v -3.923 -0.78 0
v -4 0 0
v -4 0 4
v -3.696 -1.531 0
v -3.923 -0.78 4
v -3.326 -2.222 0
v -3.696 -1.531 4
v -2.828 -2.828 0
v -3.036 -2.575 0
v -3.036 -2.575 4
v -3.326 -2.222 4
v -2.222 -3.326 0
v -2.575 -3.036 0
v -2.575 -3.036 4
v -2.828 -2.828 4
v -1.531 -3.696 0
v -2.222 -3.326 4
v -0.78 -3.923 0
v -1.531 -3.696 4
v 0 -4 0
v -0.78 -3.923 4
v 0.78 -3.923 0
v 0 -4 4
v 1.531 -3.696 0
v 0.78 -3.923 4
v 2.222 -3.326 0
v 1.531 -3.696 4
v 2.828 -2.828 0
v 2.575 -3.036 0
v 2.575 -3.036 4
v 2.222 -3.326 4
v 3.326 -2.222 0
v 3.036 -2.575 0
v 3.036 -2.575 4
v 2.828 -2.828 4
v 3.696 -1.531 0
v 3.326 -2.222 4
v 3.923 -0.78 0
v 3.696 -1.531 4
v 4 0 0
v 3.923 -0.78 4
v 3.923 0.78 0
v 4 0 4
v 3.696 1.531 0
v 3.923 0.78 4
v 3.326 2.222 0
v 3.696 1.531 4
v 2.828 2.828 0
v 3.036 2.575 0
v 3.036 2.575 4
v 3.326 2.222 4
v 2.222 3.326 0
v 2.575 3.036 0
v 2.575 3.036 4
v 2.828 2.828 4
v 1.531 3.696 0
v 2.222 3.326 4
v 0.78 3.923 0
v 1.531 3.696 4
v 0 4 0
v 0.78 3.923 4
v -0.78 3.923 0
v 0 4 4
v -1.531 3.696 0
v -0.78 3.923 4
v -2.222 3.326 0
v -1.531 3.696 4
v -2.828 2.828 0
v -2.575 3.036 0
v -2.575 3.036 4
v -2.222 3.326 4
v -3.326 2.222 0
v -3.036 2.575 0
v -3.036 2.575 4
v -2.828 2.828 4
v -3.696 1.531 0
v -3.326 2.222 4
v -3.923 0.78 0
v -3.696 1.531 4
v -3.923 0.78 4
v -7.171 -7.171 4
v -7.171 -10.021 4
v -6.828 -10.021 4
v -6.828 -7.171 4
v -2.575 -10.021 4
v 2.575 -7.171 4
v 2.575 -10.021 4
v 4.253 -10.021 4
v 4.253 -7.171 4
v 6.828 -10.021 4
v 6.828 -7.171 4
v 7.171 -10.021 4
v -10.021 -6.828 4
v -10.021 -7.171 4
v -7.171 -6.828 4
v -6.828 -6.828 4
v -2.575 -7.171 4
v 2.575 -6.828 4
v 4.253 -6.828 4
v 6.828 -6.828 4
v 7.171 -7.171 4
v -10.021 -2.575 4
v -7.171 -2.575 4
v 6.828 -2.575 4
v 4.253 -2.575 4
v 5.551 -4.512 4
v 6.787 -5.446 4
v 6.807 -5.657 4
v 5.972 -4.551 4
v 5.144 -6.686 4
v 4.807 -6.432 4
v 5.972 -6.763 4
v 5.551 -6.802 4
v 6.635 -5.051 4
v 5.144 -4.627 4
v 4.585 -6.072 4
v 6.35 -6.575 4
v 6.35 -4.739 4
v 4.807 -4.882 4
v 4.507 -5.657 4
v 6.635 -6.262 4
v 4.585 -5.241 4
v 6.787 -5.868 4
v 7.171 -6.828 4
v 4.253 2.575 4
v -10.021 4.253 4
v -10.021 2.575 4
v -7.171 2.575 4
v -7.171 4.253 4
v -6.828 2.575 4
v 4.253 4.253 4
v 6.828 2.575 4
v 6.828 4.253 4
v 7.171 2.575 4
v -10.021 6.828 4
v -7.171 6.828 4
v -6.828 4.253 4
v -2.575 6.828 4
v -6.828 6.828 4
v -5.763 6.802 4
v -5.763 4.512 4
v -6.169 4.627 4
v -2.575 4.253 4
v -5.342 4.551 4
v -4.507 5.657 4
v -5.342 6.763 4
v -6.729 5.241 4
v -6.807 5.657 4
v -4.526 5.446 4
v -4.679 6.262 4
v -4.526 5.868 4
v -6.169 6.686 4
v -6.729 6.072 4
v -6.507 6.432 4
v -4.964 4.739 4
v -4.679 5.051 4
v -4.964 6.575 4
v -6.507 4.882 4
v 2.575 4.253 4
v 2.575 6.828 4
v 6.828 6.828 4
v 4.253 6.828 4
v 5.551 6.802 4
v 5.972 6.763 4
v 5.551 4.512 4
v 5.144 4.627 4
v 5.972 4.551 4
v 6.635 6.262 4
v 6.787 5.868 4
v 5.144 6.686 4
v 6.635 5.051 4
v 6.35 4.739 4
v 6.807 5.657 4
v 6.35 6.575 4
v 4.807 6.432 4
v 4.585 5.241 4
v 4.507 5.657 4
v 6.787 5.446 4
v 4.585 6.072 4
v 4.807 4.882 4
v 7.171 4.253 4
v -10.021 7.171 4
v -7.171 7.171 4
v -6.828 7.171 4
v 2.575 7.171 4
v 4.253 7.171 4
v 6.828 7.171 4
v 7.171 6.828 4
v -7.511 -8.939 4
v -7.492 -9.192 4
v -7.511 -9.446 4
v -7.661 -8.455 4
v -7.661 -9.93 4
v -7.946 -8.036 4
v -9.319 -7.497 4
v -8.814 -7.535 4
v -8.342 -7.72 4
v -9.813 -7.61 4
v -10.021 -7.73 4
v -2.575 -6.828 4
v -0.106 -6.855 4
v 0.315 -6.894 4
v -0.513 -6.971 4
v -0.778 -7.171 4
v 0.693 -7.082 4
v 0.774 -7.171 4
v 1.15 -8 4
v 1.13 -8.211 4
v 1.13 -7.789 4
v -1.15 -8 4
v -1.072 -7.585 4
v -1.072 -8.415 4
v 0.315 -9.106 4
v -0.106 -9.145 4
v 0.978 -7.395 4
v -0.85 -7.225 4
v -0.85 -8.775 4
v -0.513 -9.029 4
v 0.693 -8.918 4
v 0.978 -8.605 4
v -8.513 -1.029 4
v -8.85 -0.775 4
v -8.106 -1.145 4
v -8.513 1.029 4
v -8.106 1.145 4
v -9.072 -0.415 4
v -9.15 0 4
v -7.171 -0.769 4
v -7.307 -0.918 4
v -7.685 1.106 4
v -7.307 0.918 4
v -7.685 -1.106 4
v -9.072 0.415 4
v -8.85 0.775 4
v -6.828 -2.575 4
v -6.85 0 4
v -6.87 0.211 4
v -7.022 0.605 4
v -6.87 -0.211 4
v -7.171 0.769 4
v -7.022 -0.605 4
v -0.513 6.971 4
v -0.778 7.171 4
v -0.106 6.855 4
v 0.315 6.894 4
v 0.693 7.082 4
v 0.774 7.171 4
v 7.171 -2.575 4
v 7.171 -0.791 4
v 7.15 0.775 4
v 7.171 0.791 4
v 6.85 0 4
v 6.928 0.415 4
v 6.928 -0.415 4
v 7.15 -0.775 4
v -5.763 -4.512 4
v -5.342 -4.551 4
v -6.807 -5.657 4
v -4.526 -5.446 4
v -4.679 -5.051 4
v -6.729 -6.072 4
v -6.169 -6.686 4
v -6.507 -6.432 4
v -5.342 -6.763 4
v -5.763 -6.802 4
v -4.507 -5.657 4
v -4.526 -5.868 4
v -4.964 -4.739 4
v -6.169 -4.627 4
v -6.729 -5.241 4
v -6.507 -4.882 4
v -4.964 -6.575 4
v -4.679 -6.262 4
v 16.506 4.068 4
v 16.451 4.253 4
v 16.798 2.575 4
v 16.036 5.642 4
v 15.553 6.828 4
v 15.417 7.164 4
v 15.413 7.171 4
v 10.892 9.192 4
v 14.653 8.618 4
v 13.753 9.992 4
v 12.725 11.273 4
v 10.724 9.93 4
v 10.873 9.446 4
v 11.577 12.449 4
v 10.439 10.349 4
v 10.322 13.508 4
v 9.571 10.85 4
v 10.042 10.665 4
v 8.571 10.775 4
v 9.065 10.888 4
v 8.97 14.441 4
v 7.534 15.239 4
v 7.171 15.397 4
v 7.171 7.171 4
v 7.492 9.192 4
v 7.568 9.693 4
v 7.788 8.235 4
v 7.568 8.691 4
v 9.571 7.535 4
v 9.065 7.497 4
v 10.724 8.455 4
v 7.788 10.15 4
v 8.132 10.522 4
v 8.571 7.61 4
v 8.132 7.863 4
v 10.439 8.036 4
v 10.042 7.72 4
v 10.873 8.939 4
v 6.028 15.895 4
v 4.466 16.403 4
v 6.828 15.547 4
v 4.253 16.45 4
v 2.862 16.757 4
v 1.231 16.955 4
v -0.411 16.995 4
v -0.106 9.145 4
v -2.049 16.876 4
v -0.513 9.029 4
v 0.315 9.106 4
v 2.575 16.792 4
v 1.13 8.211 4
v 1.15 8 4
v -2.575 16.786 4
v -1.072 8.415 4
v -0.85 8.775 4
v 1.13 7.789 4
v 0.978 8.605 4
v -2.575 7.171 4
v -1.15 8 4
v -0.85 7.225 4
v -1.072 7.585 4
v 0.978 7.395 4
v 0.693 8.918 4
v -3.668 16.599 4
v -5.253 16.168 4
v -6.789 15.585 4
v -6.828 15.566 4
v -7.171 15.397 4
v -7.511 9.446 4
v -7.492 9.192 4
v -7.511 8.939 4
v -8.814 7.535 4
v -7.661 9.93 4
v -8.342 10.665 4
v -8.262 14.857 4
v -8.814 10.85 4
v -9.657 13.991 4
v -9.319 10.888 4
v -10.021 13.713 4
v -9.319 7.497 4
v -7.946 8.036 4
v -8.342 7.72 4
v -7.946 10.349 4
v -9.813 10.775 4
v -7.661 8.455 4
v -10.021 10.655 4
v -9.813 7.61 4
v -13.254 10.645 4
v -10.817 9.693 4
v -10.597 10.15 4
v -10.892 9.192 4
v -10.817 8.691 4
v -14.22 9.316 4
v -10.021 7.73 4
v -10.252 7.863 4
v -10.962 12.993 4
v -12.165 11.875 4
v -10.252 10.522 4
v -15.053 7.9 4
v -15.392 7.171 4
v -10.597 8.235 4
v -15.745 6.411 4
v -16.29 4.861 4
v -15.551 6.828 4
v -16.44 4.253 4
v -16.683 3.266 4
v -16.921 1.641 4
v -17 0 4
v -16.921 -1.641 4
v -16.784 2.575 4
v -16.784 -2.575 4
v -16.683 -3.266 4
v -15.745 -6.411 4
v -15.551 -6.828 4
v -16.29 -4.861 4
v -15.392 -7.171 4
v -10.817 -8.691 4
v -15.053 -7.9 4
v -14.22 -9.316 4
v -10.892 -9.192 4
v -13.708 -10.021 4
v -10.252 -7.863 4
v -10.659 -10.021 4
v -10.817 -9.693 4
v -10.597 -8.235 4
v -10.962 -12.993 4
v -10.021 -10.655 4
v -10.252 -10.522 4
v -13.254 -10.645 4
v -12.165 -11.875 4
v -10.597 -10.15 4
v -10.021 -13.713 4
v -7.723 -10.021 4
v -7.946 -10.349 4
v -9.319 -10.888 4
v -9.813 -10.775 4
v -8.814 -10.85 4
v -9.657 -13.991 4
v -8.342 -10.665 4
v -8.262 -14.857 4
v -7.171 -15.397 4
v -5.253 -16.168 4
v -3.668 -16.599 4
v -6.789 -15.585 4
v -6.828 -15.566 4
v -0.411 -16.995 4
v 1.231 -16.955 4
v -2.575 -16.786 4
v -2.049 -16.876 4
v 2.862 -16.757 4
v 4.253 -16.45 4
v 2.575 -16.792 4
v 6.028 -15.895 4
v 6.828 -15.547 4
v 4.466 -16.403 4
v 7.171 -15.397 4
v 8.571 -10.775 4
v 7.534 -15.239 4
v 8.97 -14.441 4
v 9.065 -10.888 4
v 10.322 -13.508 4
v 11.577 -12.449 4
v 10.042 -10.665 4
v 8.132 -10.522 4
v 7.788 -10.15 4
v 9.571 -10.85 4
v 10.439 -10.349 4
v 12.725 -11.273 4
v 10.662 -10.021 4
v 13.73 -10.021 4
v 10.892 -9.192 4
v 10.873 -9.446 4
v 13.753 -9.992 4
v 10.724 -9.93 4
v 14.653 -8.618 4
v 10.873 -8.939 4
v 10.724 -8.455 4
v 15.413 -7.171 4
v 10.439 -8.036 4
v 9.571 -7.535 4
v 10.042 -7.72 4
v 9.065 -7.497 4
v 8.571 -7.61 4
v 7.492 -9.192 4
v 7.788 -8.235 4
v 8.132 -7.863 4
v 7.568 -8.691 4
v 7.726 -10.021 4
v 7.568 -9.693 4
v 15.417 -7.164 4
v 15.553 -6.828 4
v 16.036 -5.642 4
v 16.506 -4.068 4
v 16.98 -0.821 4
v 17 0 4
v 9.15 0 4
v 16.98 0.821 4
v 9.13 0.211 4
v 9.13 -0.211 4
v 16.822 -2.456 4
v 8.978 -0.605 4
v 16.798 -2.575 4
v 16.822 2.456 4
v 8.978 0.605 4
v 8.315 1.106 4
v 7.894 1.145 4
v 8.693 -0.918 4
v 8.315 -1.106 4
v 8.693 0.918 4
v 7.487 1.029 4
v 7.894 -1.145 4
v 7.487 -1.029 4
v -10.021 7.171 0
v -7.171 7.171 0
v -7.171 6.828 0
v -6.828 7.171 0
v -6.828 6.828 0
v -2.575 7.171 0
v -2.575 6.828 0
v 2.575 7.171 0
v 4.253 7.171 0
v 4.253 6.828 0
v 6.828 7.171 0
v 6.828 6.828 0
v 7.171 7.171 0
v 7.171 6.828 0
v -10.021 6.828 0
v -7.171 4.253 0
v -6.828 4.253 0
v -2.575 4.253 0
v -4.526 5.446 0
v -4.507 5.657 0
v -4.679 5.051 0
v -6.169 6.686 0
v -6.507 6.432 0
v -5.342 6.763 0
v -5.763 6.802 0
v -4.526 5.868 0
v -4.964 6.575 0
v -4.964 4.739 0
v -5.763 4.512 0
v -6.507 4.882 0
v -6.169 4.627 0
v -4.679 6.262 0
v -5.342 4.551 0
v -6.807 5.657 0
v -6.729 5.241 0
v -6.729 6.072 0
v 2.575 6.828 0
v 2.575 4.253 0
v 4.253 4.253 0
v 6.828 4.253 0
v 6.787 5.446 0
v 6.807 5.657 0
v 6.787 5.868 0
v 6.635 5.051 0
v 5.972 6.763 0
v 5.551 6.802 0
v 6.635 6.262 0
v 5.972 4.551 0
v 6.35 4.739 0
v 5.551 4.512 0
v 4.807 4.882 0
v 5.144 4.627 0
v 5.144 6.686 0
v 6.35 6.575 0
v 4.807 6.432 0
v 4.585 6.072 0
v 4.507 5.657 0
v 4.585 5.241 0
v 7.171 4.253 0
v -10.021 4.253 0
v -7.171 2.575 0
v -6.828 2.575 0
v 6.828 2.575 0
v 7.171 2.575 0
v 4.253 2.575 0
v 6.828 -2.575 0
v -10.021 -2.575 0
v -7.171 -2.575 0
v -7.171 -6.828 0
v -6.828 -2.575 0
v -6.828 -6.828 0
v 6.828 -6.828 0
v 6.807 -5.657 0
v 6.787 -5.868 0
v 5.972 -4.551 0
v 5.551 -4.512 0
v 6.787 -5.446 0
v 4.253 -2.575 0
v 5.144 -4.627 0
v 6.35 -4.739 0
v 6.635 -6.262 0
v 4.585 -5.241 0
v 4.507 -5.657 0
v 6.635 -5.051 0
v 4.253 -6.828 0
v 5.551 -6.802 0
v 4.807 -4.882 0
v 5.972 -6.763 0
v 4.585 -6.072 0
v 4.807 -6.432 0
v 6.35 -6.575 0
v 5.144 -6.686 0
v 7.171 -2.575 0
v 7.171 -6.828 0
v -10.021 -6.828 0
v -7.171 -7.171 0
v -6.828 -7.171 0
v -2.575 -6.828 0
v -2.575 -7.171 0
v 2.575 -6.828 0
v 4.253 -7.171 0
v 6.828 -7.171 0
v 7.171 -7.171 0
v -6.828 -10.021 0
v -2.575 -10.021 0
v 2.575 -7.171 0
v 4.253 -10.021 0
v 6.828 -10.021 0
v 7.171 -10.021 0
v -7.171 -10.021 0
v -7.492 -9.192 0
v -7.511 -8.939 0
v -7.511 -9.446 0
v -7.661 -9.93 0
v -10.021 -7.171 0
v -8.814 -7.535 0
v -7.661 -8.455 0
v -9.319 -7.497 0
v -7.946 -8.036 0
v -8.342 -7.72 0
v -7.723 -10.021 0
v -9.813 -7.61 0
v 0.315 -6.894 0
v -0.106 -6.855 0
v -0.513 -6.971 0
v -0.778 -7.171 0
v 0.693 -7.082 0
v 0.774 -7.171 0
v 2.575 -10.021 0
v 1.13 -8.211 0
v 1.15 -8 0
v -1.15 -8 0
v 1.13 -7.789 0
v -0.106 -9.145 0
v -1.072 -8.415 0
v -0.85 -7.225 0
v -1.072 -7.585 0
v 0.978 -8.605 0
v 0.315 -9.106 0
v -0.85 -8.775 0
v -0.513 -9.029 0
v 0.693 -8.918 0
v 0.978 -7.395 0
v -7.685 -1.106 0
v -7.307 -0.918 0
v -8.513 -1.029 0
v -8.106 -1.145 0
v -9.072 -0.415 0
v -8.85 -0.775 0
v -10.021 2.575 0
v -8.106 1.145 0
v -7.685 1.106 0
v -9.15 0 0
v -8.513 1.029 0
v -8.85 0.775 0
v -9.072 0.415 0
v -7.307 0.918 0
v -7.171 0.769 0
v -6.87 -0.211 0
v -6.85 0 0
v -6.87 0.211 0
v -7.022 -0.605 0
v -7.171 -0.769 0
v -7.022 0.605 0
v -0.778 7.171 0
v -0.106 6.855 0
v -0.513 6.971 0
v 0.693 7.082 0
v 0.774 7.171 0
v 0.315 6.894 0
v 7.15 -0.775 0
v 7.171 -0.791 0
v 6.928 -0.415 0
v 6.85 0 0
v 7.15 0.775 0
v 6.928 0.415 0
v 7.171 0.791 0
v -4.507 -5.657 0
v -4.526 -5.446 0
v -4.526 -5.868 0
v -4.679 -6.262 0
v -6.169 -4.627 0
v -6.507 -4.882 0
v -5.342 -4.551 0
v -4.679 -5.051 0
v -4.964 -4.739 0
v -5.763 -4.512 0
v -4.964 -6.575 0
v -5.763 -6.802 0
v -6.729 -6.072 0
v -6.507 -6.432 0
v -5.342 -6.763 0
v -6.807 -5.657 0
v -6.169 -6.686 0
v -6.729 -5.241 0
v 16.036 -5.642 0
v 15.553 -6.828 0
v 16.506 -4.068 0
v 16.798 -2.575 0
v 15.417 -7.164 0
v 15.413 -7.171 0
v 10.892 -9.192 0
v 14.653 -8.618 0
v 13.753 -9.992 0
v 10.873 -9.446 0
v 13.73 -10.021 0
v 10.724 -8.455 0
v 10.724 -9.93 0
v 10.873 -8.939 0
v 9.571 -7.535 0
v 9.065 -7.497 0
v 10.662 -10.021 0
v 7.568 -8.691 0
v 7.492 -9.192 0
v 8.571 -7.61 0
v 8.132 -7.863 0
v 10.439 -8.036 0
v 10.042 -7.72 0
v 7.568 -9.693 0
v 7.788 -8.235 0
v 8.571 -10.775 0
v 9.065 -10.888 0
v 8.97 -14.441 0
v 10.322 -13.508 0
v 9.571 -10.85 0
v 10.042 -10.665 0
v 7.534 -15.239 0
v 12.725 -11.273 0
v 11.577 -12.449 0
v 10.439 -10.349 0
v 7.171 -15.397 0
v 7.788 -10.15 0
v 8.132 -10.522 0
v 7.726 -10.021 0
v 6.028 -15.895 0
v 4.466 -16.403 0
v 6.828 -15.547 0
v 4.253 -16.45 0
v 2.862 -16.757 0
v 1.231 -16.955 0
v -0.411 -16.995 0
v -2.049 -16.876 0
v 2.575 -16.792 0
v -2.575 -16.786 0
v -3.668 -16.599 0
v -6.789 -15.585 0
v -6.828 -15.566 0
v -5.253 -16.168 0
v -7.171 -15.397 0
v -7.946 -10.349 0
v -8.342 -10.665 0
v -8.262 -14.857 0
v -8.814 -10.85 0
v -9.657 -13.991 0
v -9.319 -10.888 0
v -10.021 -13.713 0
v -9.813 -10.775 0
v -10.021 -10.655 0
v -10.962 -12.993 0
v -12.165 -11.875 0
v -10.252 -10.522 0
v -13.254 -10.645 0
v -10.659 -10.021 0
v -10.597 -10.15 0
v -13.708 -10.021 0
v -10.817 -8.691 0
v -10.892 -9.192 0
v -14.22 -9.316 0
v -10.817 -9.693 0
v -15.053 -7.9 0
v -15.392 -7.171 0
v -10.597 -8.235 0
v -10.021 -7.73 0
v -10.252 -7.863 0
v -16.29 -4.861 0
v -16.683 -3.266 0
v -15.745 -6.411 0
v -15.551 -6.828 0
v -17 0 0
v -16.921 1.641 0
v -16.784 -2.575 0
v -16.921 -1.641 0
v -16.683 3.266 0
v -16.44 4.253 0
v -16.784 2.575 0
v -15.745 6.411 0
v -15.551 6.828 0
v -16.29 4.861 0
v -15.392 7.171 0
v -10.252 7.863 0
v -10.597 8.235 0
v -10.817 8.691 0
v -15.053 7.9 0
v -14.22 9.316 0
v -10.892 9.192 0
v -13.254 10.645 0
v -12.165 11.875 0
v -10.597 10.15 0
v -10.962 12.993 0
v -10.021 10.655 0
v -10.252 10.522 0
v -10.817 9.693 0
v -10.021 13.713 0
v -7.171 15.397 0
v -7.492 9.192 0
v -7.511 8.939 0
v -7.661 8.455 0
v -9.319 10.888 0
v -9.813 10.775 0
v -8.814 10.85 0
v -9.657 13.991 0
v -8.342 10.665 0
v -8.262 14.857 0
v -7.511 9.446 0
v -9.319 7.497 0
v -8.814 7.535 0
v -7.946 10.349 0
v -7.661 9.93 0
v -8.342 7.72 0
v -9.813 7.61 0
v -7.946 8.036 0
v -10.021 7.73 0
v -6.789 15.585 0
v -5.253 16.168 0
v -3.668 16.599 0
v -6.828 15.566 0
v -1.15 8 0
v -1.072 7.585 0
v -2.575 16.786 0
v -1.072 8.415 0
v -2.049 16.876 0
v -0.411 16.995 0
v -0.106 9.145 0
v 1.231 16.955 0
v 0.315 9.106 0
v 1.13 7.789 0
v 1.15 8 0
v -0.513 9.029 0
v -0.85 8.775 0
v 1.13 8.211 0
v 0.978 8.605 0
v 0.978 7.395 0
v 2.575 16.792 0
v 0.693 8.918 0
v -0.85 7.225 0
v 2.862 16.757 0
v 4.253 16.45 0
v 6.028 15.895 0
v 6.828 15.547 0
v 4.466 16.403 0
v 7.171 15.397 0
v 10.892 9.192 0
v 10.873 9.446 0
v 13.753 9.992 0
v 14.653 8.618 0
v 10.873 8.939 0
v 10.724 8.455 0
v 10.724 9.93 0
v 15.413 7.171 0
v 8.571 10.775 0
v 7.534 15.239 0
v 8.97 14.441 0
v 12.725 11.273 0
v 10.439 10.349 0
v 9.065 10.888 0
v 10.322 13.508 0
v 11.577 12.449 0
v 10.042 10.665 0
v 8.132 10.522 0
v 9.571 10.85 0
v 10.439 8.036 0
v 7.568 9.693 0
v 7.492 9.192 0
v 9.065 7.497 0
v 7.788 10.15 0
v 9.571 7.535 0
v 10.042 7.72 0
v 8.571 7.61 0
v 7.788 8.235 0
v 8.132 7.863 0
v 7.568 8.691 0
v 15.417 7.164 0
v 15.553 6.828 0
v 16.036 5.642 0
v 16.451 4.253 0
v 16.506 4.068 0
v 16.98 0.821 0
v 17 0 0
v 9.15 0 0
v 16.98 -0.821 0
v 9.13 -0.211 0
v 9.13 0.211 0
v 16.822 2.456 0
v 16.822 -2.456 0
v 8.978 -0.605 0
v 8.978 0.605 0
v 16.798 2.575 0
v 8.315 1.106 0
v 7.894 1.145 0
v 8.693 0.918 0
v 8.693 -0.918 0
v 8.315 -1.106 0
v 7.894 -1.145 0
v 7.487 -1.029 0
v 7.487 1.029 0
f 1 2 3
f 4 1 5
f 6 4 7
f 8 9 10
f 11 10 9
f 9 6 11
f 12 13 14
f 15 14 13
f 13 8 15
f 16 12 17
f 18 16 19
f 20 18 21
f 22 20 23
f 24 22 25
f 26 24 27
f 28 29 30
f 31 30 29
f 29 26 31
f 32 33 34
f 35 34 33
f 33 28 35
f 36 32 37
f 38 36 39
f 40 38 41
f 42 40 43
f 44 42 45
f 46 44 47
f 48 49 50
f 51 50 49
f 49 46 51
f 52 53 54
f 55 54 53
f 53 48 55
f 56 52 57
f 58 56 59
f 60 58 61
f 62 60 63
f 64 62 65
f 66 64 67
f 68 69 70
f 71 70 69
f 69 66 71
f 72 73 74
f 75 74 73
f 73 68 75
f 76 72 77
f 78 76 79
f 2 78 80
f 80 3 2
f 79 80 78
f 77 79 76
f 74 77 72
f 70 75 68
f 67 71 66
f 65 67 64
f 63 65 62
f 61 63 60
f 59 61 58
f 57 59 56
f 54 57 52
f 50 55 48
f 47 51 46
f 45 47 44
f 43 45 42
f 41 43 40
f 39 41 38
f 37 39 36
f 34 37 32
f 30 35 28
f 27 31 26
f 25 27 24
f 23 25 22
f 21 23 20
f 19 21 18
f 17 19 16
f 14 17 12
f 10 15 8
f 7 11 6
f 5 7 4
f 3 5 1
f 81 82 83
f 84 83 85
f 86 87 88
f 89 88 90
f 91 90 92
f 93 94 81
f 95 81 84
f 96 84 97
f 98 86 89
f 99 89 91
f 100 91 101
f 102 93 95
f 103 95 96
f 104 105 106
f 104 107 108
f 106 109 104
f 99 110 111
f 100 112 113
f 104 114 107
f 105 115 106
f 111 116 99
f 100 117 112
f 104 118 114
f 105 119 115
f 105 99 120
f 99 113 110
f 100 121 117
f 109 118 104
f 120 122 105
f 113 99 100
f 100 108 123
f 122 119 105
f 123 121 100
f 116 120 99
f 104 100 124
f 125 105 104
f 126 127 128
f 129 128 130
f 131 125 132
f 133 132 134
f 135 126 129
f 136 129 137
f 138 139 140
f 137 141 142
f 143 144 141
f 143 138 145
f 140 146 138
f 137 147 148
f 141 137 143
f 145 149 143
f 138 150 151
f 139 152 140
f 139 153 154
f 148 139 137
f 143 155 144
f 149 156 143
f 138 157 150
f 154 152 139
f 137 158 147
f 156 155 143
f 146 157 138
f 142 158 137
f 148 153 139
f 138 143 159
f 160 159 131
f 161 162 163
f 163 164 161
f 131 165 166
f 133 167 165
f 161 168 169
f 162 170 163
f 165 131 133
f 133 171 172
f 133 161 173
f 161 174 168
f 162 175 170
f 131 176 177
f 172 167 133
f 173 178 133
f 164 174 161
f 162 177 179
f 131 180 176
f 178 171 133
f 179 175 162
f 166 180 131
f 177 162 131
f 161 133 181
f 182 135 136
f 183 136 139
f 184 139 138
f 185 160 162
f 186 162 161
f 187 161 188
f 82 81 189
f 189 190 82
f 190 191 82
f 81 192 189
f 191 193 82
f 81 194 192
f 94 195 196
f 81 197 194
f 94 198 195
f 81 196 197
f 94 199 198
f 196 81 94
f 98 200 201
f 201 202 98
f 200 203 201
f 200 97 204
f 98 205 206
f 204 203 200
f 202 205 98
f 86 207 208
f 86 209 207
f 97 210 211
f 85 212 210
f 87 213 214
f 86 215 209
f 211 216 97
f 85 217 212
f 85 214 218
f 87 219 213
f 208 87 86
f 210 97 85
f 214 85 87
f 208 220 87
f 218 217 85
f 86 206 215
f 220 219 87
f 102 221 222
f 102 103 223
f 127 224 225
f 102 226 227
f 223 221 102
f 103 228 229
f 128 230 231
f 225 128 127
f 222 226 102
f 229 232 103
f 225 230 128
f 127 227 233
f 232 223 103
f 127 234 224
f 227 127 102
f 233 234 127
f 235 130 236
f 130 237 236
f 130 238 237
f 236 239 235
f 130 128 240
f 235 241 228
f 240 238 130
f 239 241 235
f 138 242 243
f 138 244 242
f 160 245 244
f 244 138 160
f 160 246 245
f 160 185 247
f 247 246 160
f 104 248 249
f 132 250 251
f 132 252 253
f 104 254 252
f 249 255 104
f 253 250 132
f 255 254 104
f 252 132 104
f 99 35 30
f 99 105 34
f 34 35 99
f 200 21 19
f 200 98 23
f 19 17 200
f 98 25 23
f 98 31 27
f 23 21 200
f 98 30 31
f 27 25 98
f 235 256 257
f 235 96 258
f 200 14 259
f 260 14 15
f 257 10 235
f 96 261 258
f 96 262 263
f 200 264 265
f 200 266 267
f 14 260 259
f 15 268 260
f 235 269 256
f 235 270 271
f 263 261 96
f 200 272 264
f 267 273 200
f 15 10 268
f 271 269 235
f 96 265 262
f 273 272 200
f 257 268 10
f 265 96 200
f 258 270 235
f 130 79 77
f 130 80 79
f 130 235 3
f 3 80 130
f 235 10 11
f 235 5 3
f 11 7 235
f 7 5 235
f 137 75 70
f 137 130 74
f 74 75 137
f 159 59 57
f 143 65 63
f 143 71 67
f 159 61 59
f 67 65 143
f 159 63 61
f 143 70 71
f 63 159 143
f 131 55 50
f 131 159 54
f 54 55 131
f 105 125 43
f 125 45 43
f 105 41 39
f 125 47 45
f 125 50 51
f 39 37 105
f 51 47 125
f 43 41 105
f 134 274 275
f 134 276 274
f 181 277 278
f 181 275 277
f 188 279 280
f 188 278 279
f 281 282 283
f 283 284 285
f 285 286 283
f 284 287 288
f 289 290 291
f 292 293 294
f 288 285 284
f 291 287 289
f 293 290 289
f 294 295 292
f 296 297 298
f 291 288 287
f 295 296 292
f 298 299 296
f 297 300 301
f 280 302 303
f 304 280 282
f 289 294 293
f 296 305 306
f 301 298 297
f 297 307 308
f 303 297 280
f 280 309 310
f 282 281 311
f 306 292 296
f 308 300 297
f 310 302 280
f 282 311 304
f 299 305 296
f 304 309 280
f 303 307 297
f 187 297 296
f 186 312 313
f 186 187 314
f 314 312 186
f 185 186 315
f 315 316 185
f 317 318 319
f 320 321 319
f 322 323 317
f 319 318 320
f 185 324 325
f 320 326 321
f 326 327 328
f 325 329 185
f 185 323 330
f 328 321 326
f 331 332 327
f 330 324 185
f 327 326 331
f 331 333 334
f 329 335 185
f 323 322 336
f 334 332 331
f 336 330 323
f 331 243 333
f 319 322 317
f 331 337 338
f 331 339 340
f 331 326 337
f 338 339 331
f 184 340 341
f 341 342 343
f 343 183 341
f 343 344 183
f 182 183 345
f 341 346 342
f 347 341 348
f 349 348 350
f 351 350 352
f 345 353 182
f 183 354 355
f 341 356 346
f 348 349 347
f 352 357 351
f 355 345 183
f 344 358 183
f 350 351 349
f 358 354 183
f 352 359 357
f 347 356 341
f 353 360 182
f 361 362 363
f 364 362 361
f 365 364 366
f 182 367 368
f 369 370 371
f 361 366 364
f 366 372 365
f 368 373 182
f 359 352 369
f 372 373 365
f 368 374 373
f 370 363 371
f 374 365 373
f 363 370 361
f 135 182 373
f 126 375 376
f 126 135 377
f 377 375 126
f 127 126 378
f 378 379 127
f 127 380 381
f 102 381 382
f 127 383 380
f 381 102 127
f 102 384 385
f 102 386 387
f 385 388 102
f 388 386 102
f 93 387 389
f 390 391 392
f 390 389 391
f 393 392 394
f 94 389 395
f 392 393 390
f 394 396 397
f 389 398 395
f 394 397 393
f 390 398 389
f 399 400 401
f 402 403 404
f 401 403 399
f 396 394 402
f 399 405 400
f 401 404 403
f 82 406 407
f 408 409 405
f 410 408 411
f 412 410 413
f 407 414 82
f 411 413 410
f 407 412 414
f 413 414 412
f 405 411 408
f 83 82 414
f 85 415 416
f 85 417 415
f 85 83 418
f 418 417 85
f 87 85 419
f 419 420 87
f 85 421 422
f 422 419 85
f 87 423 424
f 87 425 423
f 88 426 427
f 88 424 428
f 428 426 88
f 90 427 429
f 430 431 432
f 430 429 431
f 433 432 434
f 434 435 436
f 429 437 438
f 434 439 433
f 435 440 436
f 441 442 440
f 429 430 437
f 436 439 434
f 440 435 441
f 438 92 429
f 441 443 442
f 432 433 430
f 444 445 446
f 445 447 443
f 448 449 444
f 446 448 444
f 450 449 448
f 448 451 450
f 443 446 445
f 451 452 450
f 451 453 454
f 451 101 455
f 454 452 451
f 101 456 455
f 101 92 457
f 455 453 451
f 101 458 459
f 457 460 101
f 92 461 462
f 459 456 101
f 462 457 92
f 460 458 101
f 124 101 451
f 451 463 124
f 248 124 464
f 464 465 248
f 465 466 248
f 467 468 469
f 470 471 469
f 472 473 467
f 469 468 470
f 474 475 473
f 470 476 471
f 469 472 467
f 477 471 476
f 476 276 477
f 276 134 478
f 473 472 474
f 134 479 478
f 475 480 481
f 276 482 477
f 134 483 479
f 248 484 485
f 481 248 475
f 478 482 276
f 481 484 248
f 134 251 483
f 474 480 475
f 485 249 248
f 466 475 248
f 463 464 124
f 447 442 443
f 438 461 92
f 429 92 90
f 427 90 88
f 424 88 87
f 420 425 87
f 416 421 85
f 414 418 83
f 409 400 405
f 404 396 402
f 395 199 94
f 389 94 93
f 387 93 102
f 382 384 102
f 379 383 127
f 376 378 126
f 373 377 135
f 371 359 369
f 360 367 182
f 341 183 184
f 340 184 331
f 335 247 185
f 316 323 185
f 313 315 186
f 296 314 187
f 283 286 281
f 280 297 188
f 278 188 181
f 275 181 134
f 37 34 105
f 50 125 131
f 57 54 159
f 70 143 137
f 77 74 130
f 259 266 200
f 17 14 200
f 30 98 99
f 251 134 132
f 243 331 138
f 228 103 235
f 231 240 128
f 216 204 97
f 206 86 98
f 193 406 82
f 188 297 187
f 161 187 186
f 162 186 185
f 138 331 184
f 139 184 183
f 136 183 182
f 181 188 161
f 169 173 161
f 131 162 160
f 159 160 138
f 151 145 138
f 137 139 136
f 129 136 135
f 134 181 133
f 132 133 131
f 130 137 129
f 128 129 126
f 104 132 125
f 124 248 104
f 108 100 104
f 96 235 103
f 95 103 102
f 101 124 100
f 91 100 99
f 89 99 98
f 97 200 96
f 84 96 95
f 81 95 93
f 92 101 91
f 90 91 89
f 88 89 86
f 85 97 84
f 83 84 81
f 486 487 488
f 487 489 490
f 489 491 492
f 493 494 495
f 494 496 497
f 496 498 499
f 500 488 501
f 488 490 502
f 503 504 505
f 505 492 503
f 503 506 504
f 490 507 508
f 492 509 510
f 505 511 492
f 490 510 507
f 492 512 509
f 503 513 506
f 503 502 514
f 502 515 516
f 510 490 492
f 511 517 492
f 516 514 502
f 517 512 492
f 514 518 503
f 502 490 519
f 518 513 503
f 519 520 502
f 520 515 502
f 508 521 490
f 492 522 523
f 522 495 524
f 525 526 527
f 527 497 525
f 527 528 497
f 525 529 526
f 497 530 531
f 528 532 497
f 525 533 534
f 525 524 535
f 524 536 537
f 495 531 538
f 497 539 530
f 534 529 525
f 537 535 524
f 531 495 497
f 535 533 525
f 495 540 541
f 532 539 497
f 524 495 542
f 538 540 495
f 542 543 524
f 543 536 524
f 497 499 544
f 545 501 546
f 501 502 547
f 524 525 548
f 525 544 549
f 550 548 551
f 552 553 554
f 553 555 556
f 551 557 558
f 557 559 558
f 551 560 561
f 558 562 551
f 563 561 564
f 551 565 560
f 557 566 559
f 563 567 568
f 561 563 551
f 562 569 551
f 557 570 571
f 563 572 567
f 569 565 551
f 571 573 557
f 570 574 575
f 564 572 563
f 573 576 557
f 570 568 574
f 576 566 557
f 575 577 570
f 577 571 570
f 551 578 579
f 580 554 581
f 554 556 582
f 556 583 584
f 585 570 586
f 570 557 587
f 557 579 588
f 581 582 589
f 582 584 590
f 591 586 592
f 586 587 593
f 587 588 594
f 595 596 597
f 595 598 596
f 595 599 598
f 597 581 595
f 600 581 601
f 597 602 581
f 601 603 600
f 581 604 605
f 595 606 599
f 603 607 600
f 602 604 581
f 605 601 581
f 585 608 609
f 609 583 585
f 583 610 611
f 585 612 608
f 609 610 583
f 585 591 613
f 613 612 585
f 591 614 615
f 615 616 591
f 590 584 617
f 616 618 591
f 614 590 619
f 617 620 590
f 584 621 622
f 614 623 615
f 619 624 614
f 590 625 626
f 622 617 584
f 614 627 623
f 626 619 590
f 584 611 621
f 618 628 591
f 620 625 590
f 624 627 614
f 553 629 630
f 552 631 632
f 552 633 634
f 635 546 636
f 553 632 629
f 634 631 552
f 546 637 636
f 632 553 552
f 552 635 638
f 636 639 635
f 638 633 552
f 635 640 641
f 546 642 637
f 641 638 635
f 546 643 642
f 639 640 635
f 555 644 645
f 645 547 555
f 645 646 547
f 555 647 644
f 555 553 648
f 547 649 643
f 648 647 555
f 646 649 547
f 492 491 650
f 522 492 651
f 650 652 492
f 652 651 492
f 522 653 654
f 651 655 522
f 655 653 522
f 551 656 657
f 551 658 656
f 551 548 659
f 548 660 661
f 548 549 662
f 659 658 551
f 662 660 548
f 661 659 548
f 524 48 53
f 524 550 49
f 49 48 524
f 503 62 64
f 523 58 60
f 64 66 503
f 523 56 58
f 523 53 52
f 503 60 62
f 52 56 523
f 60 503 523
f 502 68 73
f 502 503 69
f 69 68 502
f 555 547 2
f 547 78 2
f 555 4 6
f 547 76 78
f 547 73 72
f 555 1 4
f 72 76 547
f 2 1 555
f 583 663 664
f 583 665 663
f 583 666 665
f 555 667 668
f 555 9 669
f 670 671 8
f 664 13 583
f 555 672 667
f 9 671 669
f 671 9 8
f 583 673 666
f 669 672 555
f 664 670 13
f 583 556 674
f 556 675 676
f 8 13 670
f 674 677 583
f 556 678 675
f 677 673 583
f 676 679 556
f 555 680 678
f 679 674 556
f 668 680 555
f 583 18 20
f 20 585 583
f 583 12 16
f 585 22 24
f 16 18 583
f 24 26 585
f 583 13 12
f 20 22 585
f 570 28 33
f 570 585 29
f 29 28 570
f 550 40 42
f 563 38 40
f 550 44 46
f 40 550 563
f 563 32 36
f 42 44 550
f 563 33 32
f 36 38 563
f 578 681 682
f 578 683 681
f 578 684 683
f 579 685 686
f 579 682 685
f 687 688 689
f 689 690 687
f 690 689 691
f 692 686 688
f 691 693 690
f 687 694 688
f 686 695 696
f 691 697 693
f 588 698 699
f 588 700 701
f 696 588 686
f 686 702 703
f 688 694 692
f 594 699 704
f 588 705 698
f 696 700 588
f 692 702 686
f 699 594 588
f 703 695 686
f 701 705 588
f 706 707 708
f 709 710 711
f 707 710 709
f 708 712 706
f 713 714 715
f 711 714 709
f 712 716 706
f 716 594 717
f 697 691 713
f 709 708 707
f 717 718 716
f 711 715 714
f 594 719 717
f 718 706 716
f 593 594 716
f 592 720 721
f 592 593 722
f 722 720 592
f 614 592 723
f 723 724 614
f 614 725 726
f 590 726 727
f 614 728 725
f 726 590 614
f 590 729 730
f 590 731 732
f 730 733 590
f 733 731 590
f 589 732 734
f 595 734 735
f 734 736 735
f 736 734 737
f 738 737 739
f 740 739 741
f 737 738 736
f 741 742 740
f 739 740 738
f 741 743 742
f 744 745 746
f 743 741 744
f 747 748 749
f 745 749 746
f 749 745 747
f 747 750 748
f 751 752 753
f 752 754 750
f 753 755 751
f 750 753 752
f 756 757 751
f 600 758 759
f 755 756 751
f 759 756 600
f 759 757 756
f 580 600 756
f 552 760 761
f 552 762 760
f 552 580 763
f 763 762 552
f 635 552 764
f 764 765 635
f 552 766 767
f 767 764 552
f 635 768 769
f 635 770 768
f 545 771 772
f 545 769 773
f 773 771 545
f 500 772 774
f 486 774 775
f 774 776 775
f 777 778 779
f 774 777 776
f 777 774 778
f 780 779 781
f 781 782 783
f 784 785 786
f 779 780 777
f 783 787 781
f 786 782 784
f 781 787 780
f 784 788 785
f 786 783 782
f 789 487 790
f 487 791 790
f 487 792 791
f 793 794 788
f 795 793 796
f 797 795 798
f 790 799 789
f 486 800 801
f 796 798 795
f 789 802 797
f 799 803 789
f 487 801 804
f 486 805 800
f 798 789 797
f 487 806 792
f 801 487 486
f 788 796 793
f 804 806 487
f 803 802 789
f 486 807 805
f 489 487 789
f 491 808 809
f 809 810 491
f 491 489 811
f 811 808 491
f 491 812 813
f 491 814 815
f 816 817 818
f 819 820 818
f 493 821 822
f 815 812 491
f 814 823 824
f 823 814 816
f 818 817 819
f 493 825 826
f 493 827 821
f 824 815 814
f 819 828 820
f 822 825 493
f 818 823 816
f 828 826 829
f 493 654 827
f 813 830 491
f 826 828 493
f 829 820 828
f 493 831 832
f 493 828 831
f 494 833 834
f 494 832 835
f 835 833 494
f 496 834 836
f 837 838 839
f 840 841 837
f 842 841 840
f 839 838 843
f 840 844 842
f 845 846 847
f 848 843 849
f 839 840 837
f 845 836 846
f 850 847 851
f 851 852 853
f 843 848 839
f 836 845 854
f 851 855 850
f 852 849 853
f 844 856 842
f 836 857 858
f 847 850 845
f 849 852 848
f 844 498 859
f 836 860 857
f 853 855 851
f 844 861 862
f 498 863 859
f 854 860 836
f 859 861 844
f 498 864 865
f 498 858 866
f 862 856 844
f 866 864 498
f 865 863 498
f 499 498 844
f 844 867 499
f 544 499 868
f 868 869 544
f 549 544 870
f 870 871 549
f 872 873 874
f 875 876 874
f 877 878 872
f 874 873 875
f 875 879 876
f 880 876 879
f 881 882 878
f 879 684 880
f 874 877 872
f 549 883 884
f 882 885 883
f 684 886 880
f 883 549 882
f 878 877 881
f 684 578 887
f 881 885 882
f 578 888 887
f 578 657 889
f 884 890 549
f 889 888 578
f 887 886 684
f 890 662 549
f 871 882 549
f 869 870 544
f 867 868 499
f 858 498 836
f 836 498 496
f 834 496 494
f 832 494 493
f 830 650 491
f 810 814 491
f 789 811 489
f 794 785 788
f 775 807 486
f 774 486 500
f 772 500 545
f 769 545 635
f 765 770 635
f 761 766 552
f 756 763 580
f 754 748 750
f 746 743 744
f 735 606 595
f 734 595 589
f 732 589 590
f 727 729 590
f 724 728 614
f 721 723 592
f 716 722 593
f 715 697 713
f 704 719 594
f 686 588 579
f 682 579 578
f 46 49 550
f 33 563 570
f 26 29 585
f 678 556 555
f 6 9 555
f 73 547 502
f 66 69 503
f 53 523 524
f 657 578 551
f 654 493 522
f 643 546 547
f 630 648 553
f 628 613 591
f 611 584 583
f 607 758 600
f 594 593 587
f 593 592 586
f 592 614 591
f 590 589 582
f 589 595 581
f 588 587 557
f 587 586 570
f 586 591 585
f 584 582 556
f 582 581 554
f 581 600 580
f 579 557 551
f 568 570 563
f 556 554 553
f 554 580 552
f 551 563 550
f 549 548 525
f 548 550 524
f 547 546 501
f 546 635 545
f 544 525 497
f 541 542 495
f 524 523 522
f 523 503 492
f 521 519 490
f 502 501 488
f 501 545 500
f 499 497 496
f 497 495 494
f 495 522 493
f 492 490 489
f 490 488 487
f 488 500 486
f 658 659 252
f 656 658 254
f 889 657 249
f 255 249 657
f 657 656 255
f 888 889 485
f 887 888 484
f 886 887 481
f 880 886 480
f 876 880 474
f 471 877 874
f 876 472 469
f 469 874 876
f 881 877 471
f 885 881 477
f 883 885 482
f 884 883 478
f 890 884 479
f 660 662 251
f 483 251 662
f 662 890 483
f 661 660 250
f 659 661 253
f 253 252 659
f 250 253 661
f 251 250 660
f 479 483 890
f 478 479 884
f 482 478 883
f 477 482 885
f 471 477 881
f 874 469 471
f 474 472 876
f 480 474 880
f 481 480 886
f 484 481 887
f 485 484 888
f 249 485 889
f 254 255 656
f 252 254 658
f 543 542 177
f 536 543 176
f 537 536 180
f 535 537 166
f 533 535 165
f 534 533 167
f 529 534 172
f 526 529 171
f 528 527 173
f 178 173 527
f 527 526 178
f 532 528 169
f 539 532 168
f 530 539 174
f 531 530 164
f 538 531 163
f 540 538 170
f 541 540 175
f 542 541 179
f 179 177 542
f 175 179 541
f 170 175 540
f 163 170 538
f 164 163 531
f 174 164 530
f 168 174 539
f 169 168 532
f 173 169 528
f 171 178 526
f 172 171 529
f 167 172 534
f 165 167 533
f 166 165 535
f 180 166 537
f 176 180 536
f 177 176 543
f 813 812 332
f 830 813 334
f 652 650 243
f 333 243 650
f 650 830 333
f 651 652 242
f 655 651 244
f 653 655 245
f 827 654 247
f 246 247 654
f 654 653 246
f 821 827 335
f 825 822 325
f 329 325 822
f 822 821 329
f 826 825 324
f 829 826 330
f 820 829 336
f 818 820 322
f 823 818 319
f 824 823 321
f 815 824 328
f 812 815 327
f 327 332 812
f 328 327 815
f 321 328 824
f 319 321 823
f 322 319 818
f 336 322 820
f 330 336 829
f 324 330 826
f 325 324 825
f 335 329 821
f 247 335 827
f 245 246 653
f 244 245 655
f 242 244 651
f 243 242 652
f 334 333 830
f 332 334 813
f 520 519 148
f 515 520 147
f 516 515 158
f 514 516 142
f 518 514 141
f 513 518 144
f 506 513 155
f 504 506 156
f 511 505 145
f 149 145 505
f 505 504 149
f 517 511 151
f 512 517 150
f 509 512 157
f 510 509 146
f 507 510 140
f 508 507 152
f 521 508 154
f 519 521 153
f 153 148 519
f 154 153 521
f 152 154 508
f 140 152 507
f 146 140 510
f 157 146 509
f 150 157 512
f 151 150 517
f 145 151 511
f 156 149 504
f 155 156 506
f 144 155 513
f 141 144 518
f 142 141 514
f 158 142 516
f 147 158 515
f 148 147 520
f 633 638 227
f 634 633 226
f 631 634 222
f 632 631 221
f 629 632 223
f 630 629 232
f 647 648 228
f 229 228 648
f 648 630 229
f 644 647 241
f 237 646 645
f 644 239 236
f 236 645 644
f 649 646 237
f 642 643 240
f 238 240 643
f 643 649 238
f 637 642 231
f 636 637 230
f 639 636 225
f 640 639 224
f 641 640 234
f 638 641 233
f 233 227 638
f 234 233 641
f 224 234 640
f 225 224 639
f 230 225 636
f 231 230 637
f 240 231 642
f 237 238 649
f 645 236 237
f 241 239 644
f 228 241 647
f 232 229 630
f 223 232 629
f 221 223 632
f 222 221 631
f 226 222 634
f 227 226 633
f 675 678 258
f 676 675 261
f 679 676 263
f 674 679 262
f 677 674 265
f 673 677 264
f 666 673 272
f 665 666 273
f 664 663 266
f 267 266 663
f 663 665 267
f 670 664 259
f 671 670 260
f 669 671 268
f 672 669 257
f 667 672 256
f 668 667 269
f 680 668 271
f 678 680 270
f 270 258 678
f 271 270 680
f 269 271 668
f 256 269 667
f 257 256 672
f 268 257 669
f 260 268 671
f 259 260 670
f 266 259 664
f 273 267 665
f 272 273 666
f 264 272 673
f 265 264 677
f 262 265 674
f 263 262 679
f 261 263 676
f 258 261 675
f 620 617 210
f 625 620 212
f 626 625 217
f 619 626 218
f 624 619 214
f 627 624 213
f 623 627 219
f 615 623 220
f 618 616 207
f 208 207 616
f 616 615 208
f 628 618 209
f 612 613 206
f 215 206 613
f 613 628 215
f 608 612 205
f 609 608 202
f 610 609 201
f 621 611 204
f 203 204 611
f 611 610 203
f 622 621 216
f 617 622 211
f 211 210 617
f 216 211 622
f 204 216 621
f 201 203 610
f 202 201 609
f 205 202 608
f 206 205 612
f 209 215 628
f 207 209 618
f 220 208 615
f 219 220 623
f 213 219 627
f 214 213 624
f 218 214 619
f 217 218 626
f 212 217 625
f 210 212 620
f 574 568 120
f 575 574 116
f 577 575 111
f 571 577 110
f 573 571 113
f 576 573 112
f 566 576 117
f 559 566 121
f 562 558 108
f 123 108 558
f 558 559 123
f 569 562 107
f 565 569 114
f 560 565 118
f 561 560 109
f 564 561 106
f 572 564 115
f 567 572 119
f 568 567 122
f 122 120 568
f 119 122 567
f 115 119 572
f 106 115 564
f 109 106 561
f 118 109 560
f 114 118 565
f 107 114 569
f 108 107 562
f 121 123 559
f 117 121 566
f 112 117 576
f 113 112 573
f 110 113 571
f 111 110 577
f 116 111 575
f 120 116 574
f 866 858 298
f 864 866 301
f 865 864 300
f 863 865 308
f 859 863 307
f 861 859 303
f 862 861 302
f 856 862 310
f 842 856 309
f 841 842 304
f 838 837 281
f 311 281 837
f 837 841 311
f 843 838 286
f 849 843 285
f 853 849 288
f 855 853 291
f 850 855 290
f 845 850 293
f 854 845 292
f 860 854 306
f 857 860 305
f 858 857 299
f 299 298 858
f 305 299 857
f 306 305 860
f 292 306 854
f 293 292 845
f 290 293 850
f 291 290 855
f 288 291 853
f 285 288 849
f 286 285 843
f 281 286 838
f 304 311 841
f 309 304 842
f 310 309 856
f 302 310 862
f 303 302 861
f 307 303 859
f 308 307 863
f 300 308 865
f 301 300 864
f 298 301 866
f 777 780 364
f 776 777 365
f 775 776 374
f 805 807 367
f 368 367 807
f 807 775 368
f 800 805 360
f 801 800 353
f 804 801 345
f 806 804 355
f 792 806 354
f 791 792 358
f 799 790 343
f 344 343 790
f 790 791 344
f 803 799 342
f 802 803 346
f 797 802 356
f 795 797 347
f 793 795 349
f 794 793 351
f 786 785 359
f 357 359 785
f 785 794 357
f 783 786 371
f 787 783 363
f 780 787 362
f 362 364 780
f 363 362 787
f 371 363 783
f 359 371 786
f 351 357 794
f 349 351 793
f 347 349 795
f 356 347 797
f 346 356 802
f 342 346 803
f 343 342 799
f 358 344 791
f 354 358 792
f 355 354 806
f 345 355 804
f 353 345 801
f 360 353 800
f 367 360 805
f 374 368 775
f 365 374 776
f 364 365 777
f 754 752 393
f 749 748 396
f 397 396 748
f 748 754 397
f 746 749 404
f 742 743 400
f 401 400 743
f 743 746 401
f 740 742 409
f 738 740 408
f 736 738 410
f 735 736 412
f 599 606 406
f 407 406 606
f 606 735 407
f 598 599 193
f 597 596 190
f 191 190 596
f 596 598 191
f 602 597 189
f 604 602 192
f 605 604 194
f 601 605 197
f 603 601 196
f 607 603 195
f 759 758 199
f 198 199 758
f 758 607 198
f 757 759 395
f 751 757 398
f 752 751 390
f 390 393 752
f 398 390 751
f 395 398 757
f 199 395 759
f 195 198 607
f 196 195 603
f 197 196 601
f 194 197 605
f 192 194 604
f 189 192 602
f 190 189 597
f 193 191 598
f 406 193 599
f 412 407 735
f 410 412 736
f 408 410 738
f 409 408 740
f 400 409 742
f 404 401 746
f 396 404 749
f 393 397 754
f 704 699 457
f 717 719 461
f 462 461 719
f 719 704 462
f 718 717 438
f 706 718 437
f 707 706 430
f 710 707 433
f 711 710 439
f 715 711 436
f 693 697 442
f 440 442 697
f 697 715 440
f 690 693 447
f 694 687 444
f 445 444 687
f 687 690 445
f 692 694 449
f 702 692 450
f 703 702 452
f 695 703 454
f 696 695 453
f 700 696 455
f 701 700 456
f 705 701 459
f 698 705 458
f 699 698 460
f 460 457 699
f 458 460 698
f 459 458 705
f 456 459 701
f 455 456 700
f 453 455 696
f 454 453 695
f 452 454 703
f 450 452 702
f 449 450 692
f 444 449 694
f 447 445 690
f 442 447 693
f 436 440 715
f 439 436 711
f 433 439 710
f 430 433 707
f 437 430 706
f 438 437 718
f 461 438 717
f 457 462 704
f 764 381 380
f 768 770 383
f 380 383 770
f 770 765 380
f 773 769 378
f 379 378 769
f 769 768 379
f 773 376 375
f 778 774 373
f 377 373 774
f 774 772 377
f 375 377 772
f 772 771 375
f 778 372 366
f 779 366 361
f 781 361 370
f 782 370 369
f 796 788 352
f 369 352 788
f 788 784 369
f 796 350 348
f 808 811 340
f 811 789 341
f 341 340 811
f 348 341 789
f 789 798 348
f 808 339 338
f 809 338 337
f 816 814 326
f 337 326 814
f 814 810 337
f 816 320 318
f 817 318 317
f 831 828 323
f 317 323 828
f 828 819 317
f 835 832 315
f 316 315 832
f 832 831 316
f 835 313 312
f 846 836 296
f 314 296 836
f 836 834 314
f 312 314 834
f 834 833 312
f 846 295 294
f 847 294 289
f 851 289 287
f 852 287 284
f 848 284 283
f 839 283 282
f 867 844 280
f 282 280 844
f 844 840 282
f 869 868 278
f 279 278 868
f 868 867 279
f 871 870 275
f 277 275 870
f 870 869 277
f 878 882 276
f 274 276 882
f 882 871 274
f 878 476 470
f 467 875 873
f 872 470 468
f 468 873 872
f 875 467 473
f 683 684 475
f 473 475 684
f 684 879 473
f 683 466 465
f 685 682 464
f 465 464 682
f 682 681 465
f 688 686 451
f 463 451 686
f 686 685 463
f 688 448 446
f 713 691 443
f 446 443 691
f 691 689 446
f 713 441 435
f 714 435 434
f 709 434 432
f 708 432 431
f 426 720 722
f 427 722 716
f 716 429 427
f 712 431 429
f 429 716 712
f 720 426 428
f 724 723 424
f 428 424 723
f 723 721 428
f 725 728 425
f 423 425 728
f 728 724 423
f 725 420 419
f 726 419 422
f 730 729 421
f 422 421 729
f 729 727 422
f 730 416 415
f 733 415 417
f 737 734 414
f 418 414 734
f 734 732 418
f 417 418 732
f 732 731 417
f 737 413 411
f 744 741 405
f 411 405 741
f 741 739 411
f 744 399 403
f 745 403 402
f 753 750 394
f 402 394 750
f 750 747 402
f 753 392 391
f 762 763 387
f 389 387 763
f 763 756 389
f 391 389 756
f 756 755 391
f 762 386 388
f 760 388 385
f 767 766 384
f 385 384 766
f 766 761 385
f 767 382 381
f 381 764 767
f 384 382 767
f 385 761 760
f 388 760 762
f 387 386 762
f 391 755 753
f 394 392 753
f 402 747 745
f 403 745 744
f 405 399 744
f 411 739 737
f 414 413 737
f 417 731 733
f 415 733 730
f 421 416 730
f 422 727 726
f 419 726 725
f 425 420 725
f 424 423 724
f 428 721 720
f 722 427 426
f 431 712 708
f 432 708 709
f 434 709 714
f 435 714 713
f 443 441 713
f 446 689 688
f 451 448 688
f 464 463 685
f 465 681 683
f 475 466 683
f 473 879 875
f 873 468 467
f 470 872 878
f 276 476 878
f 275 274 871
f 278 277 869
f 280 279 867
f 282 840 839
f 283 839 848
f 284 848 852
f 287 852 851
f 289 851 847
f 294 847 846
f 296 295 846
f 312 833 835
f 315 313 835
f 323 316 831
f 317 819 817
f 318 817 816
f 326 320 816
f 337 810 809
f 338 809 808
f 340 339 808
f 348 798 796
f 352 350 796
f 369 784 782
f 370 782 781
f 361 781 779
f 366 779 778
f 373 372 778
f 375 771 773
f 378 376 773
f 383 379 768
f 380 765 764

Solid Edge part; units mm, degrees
sketch "Sketch1" plane through (0, 0, 0) normal (0, 0, 1) x (1, 0, 0)
  circle A0 centre (0, 0) radius 17
  circle A1 centre (0, 0) radius 4
  circle A2 centre (8, 0) radius 1.15
  circle A3 centre (5.6569, 5.6569) radius 1.15
  circle A4 centre (0, 8) radius 1.15
  circle A5 centre (-5.6569, 5.6569) radius 1.15
  circle A6 centre (-8, 0) radius 1.15
  circle A7 centre (-5.6569, -5.6569) radius 1.15
  circle A8 centre (0, -8) radius 1.15
  circle A9 centre (5.6569, -5.6569) radius 1.15
  circle A10 centre (9.1924, 9.1924) radius 1.7
  circle A11 centre (-9.1924, 9.1924) radius 1.7
  circle A12 centre (-9.1924, -9.1924) radius 1.7
  circle A13 centre (9.1924, -9.1924) radius 1.7
extrude "Protrusion1" add sketch "Sketch1" along normal blind 4
